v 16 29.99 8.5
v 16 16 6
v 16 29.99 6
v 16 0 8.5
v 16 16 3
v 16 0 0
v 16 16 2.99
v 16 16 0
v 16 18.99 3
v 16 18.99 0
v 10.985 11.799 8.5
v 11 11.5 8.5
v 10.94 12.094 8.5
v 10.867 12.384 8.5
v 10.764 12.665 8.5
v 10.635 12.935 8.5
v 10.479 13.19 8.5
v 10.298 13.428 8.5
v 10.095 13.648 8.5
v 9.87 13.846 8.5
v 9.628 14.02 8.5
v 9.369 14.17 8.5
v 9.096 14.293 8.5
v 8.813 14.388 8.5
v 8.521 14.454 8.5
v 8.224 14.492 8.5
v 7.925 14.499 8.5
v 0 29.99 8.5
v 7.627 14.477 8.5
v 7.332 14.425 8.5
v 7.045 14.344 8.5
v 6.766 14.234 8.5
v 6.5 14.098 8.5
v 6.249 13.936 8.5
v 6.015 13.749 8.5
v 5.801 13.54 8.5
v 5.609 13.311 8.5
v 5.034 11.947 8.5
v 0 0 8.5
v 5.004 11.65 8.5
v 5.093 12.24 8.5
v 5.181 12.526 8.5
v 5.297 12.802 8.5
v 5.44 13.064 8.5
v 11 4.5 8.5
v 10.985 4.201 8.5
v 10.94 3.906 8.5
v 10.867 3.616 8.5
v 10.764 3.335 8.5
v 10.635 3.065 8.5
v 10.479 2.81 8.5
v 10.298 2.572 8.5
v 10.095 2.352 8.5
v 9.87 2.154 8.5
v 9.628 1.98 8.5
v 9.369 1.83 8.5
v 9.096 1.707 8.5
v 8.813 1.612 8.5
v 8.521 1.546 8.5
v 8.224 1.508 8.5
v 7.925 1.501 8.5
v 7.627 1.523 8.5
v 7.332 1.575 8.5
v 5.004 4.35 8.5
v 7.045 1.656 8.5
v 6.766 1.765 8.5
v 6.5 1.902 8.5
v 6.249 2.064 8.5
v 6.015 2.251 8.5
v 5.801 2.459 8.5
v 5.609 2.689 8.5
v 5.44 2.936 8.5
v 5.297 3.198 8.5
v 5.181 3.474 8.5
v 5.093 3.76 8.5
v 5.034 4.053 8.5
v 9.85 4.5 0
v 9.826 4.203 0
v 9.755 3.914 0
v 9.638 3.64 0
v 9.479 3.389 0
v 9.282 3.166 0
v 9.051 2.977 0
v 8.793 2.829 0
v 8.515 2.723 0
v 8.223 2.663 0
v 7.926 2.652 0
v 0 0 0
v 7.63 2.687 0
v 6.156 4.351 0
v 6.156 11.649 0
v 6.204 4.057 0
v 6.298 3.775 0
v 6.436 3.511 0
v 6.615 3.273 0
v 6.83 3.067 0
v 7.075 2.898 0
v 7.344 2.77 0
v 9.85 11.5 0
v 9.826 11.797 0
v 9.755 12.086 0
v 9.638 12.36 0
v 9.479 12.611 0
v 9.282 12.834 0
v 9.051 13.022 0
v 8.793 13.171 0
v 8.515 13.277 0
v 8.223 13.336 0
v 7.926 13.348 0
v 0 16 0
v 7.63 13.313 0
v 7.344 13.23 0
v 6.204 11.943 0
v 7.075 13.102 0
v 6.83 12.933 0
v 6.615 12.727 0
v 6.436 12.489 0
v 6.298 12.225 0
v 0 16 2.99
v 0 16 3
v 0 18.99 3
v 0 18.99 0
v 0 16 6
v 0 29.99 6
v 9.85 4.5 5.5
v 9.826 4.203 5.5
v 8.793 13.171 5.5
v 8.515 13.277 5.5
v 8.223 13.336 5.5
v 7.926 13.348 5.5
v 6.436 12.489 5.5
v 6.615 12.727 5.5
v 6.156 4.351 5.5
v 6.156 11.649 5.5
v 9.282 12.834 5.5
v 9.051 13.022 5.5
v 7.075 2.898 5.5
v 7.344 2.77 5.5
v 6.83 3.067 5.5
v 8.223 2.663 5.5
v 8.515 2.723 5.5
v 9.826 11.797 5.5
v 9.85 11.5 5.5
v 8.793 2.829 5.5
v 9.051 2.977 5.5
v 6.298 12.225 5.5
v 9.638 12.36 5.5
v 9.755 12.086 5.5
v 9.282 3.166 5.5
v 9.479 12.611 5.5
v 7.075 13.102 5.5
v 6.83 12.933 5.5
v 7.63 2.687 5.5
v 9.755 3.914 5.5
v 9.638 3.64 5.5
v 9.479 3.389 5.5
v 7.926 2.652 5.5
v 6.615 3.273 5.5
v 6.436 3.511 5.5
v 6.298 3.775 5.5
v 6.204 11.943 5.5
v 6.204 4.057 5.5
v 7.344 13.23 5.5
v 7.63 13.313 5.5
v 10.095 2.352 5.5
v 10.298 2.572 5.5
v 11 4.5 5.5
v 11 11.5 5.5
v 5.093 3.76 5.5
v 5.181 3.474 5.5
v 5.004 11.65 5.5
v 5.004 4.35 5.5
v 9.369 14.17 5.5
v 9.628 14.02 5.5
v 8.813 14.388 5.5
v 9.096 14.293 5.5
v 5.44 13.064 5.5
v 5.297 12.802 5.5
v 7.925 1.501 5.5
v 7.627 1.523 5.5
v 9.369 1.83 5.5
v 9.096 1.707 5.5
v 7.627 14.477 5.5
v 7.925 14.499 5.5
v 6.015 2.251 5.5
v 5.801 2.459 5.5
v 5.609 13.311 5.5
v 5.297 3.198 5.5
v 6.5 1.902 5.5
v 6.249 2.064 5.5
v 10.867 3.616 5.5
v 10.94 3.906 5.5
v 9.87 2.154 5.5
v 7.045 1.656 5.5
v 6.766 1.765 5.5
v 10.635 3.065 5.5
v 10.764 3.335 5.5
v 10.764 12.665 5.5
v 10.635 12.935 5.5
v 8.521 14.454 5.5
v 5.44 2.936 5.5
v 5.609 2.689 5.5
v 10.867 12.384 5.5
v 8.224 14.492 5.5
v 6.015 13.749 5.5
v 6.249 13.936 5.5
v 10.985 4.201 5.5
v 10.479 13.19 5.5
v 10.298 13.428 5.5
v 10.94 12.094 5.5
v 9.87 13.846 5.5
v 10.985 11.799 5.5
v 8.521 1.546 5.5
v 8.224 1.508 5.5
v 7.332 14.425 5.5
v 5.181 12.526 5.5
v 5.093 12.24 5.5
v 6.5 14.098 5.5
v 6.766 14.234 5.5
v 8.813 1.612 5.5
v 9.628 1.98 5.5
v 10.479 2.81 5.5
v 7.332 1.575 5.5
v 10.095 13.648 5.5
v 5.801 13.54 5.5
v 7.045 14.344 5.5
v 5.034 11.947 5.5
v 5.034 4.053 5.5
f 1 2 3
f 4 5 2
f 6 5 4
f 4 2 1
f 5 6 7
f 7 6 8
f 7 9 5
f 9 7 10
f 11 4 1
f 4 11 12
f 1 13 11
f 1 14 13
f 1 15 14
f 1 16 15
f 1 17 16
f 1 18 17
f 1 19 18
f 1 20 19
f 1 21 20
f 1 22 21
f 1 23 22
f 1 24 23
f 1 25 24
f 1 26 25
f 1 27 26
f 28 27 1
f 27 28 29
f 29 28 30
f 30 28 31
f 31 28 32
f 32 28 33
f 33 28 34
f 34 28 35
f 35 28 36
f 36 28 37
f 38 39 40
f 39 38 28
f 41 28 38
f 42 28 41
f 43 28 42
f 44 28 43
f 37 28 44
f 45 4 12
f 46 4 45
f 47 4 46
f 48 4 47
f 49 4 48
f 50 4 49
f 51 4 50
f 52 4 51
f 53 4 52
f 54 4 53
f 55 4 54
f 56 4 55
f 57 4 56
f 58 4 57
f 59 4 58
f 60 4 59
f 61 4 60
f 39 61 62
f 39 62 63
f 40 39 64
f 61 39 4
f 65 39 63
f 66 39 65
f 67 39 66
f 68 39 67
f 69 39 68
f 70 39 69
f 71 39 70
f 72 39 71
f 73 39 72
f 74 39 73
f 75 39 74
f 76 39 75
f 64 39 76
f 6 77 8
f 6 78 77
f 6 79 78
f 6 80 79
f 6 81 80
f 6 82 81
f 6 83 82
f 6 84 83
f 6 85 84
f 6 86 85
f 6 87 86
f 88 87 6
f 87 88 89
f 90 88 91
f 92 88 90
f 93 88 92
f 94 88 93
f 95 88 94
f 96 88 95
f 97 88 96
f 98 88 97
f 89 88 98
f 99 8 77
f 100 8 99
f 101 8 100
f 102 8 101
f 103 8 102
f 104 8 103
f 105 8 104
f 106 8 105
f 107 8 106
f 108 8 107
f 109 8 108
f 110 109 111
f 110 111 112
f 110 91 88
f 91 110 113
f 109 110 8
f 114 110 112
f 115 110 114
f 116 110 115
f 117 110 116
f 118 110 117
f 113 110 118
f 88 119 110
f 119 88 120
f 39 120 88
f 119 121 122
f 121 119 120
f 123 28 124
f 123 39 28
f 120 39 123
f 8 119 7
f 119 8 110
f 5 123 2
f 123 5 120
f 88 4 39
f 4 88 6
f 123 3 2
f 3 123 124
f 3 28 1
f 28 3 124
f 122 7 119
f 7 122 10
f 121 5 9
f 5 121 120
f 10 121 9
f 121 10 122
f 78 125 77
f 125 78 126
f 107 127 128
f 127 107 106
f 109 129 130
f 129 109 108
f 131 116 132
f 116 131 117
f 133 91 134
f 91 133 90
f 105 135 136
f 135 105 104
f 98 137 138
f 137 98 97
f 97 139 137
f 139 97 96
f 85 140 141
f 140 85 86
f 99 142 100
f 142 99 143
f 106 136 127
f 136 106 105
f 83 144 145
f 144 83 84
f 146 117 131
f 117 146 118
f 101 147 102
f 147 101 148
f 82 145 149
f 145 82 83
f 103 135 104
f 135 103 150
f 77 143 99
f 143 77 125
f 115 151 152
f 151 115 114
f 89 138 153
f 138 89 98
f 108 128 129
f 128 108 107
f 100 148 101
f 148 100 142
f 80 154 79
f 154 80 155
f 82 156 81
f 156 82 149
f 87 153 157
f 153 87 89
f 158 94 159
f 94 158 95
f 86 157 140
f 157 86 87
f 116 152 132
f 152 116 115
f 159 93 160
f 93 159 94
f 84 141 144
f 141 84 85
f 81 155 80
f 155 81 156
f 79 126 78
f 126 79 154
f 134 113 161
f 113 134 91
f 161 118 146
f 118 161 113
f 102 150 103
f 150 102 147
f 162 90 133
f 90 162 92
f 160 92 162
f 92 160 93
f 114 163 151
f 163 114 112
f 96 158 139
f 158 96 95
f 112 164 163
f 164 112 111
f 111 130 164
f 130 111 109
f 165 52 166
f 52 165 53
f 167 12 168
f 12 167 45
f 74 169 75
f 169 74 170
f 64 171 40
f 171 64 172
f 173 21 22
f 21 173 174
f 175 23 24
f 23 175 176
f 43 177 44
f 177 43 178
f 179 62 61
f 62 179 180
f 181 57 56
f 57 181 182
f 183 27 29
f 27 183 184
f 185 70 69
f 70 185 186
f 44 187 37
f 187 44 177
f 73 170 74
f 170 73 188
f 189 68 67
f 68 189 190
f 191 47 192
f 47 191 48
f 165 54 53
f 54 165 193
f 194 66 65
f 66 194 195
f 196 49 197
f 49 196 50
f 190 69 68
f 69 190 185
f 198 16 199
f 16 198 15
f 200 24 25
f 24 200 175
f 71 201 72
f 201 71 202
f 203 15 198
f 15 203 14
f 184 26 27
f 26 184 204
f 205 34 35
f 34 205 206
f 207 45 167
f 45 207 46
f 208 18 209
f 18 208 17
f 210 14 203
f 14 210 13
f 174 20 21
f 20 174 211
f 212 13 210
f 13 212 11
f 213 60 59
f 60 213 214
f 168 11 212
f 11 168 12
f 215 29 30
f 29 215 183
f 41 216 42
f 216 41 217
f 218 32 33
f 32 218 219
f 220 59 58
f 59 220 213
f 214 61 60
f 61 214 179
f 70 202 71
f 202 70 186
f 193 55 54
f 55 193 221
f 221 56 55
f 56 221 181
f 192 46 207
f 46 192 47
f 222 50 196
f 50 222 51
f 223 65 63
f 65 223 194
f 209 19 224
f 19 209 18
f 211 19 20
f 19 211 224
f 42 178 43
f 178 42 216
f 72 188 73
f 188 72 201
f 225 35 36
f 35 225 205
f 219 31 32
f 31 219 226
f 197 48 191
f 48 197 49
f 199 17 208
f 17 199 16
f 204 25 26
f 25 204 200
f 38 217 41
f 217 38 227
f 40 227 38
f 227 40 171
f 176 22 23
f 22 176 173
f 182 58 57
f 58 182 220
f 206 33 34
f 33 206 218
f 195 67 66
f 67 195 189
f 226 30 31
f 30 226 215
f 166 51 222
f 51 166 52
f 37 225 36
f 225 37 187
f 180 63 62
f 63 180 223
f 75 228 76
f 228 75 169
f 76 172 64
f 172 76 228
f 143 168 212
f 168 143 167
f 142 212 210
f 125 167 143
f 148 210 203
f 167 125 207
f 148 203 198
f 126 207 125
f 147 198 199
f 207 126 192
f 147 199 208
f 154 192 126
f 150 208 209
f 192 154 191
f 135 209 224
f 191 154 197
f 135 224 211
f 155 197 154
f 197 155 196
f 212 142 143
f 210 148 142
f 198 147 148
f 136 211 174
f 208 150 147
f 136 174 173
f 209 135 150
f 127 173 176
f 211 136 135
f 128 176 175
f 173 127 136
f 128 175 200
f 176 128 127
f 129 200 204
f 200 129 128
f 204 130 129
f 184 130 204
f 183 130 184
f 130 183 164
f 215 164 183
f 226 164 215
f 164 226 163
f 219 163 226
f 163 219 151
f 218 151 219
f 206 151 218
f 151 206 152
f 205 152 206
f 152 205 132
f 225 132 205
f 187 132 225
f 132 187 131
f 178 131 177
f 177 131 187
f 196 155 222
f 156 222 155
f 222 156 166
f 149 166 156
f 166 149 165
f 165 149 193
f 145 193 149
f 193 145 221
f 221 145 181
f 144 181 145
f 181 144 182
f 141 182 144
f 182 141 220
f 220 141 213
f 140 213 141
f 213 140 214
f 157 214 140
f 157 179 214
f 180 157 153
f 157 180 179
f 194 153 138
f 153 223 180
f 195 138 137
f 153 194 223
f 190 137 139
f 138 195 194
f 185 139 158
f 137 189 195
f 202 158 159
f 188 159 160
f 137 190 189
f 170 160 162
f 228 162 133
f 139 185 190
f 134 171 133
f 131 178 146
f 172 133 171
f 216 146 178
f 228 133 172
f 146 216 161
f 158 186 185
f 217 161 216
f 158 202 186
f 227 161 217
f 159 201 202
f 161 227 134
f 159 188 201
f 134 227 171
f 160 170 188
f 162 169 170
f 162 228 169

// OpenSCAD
// =====================================================================
// parts/board_edge_clip.scad  ->  board_edge_clip()
//
// TOLERANCE-FIRST failsafe board retention. Bolts to a baseplate grid point
// and a finger reaches over the board's EDGE to clamp it down from above --
// so the board is held flat even if NONE of its mounting holes line up with
// the grid. Use ~4 (one per side/corner).
//
// The mount hole is SLOTTED (along Y) so you slide the clip in/out to press
// the board edge with light force before tightening -- forgiving of where the
// board edge actually sits (poor measurement) and of a loose printer.
//
// Modeled in its own local frame: foot at the origin, finger reaching +Y over
// the board edge. main.scad places/rotates one at each board edge. Prints flat
// on the bed (foot down), zero supports.
//
//   foot top (and finger underside) sit at the board top plane so the finger
//   lightly traps the PCB: BOARD_TOP = STANDOFF_H + BOARD_T above the floor.
// =====================================================================

include <params.scad>

module board_edge_clip(reach = 14) {
    foot_w   = 16;                         // foot width (X), spans a grid cell
    foot_d   = 16;                         // foot depth (Y)
    board_top = STANDOFF_H + BOARD_T;      // finger underside height above floor
    foot_h   = board_top + 2.5;            // foot rises a bit above the finger
    fing_t   = 2.5;                        // finger thickness (Z)
    slot_len = 7;                          // M3 slot travel (Y) for in/out adjust

    difference() {
        union() {
            // foot block (bolts to the grid)
            cube([foot_w, foot_d, foot_h]);
            // cantilever finger reaching over the board edge (+Y) at board-top
            // plane, so its underside lightly traps the PCB. A 45° gusset under
            // the root keeps the cantilever stiff and support-free.
            translate([0, foot_d - EPS, board_top])
                cube([foot_w, reach, fing_t]);
            translate([0, foot_d - EPS, board_top - 3])
                rotate([0, 90, 0])
                    linear_extrude(foot_w)
                        polygon([[0,0],[0,3],[3,3]]);   // triangular gusset
        }
        // slotted M3 clearance hole through the foot, into the grid pilot below.
        // Slot runs in Y so the clip slides in/out before tightening.
        translate([foot_w/2, foot_d/2 - slot_len/2, -EPS])
            hull() {
                cylinder(h = foot_h + 2*EPS, d = M3_CLEAR);
                translate([0, slot_len, 0]) cylinder(h = foot_h + 2*EPS, d = M3_CLEAR);
            }
        // counterbore so the M3 head sits below the foot top (clears the board)
        translate([foot_w/2, foot_d/2 - slot_len/2, foot_h - 3])
            hull() {
                cylinder(h = 3 + EPS, d = M3_HEAD_D);
                translate([0, slot_len, 0]) cylinder(h = 3 + EPS, d = M3_HEAD_D);
            }
    }
}

// ---- standalone render ----
$fa = 2; $fs = 0.3;
board_edge_clip();
